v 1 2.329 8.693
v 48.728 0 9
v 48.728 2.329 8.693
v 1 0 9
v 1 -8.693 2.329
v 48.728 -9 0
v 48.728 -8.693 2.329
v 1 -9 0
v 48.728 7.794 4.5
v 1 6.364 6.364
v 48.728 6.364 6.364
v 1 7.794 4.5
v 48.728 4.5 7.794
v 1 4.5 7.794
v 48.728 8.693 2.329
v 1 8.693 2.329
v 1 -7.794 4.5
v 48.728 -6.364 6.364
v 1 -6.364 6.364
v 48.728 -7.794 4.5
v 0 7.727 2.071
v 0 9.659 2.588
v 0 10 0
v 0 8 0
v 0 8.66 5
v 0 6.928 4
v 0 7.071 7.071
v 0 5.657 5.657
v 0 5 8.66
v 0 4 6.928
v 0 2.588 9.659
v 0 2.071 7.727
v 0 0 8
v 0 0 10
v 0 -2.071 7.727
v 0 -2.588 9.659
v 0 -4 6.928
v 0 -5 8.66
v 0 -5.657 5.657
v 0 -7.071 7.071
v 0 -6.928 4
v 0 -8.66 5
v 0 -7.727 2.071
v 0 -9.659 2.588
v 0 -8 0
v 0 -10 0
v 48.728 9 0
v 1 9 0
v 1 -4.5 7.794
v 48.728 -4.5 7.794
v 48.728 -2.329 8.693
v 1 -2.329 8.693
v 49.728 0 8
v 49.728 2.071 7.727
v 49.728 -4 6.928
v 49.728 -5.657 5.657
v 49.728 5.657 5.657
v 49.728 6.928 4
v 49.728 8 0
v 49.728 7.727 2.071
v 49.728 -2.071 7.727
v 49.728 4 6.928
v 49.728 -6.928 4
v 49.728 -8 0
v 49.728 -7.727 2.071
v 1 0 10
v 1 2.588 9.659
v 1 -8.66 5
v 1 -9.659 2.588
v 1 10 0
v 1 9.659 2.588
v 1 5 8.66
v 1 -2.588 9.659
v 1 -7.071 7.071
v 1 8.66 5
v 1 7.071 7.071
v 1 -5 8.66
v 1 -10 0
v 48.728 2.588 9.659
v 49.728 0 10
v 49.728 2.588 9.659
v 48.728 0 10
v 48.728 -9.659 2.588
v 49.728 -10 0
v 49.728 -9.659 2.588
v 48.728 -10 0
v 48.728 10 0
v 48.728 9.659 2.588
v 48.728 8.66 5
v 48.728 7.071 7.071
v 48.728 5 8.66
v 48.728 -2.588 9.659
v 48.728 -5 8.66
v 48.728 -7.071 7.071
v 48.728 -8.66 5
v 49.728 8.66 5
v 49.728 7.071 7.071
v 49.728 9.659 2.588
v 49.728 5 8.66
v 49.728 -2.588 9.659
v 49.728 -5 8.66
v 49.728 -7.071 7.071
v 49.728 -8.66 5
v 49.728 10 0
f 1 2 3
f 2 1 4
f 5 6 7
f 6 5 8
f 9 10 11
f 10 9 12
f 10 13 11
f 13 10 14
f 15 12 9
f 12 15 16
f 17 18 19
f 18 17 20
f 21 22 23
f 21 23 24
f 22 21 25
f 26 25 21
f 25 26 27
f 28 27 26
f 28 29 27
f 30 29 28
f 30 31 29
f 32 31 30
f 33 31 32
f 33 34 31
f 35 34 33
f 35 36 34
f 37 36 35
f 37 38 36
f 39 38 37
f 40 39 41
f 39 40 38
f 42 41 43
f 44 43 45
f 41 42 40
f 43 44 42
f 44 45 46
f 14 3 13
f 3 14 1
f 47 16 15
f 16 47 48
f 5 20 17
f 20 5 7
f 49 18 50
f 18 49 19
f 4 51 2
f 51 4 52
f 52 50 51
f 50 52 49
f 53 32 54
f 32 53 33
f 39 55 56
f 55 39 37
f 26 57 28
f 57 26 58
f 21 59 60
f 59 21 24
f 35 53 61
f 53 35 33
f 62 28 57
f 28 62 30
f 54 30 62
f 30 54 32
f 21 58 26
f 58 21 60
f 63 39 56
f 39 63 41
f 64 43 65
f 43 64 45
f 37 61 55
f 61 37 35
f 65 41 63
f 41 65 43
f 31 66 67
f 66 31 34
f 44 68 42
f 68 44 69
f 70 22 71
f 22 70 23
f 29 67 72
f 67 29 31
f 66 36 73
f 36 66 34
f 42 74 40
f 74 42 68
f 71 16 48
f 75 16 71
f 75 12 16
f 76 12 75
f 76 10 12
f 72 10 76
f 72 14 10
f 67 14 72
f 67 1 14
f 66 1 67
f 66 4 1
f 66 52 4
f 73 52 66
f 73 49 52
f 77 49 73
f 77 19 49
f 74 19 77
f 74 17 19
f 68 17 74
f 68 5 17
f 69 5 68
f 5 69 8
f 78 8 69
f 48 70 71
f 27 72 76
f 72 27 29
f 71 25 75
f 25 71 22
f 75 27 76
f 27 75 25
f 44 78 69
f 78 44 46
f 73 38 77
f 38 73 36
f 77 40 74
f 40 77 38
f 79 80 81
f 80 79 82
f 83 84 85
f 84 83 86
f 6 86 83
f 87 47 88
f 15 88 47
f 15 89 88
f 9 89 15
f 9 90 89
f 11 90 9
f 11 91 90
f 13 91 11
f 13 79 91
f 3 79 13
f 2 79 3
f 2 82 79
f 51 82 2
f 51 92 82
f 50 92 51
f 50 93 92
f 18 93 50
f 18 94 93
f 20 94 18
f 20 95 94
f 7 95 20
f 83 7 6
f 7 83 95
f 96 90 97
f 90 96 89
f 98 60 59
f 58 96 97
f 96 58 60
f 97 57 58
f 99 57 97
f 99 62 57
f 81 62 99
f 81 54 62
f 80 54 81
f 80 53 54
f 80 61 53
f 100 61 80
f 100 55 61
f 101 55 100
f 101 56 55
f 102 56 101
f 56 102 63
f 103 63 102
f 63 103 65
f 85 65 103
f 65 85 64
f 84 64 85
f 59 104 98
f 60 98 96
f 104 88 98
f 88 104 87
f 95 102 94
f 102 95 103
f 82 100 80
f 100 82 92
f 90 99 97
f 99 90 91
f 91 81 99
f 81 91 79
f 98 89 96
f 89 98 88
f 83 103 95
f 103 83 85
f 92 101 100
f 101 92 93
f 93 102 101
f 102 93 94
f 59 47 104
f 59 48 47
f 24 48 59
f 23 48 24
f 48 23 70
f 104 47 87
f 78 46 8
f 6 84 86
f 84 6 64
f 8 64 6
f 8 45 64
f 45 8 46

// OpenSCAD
// file: ../build_environments.scad
// build_environments.scad: modules to build level sections
//

module pool(diameter=10.0, wall_height=2.0, step_width=3.0, connections=[])
{
    difference() {
        union() {
        difference() {
            cylinder(h=0.5,r1=diameter+step_width,r2=diameter+step_width,$fn=48);
            translate([0,0,-0.1])
                cylinder(h=0.7,r1=diameter,r2=diameter,$fn=48);
        }
        difference() {
            cylinder(h=wall_height,r1=diameter+step_width+1.0,r2=diameter+step_width+1.0,$fn=48);
            translate([0,0,-0.1])
                cylinder(h=wall_height+0.2,r1=diameter+step_width,r2=diameter+step_width,$fn=48);
        }
        }
    
        for (c = connections)
        {
            rotate([0,90,0]) {
                angle = atan2(c[1],c[0]);
                rotate([-angle,0,0]) {
                    cylinder(h=diameter+5.0,r1=c[2],r2=c[2],$fn=48);
                }
            }
        }
    }
}

module straight(length=10.0, width=2.0, dy1=0.0, dy2=0.0, dz=0.0)
{
    dims = [0, 0, 0, 0, 0, (dz/length)];
    matrix = [
        [ 1, dims[0], dims[1], 0 ],
        [ dims[2], 1, dims[4], 0 ],
        [ dims[5], dims[3], 1, 0 ],
        [ 0, 0, 0, 1 ]
    ];
    multmatrix(matrix)
    difference() {
        translate([dy1,0,0])
        union() {
            rotate([0,90,0]) {
                difference() {
                    cylinder(h=(length-dy1-dy2),r1=width+1.0,r2=width+1.0,$fn=24);
                    translate([0,0,-0.1])
                        cylinder(h=(length-dy1-dy2+0.2),r1=width,r2=width,$fn=24);
                }
                difference() {
                    cylinder(h=1.0,r1=width+2.0,r2=width+2.0,$fn=24);
                    translate([0,0,-0.1])
                        cylinder(h=1.2,r1=width,r2=width,$fn=24);
                }
                translate([0,0,(length-dy1-dy2)-1.0]) {
                    difference() {
                        cylinder(h=1.0,r1=width+2.0,r2=width+2.0,$fn=24);
                        translate([0,0,-0.1])
                            cylinder(h=1.2,r1=width,r2=width,$fn=24);
                    }
                }
            }
        }
        translate([0,0,-(2*width+4.0)/2])
            cube([3*length,3*length,2*width+4.0],center=true);
    }
}

module curve(p0=[0,0], center=[0,0], dir=1, angle=0.0, width=2.0)
{
    radius = sqrt((p0[0]-center[0])*(p0[0]-center[0]) + (p0[1]-center[1])*(p0[1]-center[1]));
    if (dir == 0) {
        difference() {
            rotate([0,0,-90])
            difference() {
                rotate_extrude(angle = angle, convexity = 10, $fn=32)
                    translate([radius, 0, 0])
                        circle(r = width+1.0,$fn=24);
                rotate([0,0,-1.0])
                    rotate_extrude(angle = angle+2.0, convexity = 10, $fn=32)
                        translate([radius, 0, 0])
                            circle(r = width,$fn=24);
            }
            translate([0,0,-(2*width+4.0)/2])
                cube([5*radius,5*radius,2*width+4.0],center=true);
        }
    }
    else {
        difference() {
            rotate([0,0,90])
            difference() {
                rotate_extrude(angle = -angle, convexity = 10, $fn=32)
                    translate([radius, 0, 0])
                        circle(r = width+1.0,$fn=24);
                rotate([0,0,1.0])
                    rotate_extrude(angle = -angle-2.0, convexity = 10, $fn=32)
                        translate([radius, 0, 0])
                            circle(r = width,$fn=24);
            }
            translate([0,0,-(2*width+4.0)/2])
                cube([5*radius,5*radius,2*width+4.0],center=true);
        }
    }

}

// test pool
//pool(diameter=12.0000, wall_height=3.0000, step_width=3.0000, connections=[[0.0000,-26.0000,2.0000], [23.6074,0.0000,2.0000]]);

// test straight, slope
//straight(length=26.0000, width=2.0000, dy1=11.8322, dy2=6.7082, dz=0.0000);
//straight(length=29.1549, width=12.0000, dy1=0.0000, dy2=0.0000, dz=-15.0000);

// test curve
//curve(p0=[23.6074, 0.0000], center=[23.6074, 5.0000], dir=0, angle=60.1011, width=2.0000);
//curve(p0=[33.6426, 12.4219], center=[37.9771, 9.9295], dir=1, angle=120.4627, width=2.0000);
// main file
use <../build_environments.scad>;
straight(length=49.7282, width=8.0000, dy1=0.0000, dy2=0.0000, dz=0.0000);
